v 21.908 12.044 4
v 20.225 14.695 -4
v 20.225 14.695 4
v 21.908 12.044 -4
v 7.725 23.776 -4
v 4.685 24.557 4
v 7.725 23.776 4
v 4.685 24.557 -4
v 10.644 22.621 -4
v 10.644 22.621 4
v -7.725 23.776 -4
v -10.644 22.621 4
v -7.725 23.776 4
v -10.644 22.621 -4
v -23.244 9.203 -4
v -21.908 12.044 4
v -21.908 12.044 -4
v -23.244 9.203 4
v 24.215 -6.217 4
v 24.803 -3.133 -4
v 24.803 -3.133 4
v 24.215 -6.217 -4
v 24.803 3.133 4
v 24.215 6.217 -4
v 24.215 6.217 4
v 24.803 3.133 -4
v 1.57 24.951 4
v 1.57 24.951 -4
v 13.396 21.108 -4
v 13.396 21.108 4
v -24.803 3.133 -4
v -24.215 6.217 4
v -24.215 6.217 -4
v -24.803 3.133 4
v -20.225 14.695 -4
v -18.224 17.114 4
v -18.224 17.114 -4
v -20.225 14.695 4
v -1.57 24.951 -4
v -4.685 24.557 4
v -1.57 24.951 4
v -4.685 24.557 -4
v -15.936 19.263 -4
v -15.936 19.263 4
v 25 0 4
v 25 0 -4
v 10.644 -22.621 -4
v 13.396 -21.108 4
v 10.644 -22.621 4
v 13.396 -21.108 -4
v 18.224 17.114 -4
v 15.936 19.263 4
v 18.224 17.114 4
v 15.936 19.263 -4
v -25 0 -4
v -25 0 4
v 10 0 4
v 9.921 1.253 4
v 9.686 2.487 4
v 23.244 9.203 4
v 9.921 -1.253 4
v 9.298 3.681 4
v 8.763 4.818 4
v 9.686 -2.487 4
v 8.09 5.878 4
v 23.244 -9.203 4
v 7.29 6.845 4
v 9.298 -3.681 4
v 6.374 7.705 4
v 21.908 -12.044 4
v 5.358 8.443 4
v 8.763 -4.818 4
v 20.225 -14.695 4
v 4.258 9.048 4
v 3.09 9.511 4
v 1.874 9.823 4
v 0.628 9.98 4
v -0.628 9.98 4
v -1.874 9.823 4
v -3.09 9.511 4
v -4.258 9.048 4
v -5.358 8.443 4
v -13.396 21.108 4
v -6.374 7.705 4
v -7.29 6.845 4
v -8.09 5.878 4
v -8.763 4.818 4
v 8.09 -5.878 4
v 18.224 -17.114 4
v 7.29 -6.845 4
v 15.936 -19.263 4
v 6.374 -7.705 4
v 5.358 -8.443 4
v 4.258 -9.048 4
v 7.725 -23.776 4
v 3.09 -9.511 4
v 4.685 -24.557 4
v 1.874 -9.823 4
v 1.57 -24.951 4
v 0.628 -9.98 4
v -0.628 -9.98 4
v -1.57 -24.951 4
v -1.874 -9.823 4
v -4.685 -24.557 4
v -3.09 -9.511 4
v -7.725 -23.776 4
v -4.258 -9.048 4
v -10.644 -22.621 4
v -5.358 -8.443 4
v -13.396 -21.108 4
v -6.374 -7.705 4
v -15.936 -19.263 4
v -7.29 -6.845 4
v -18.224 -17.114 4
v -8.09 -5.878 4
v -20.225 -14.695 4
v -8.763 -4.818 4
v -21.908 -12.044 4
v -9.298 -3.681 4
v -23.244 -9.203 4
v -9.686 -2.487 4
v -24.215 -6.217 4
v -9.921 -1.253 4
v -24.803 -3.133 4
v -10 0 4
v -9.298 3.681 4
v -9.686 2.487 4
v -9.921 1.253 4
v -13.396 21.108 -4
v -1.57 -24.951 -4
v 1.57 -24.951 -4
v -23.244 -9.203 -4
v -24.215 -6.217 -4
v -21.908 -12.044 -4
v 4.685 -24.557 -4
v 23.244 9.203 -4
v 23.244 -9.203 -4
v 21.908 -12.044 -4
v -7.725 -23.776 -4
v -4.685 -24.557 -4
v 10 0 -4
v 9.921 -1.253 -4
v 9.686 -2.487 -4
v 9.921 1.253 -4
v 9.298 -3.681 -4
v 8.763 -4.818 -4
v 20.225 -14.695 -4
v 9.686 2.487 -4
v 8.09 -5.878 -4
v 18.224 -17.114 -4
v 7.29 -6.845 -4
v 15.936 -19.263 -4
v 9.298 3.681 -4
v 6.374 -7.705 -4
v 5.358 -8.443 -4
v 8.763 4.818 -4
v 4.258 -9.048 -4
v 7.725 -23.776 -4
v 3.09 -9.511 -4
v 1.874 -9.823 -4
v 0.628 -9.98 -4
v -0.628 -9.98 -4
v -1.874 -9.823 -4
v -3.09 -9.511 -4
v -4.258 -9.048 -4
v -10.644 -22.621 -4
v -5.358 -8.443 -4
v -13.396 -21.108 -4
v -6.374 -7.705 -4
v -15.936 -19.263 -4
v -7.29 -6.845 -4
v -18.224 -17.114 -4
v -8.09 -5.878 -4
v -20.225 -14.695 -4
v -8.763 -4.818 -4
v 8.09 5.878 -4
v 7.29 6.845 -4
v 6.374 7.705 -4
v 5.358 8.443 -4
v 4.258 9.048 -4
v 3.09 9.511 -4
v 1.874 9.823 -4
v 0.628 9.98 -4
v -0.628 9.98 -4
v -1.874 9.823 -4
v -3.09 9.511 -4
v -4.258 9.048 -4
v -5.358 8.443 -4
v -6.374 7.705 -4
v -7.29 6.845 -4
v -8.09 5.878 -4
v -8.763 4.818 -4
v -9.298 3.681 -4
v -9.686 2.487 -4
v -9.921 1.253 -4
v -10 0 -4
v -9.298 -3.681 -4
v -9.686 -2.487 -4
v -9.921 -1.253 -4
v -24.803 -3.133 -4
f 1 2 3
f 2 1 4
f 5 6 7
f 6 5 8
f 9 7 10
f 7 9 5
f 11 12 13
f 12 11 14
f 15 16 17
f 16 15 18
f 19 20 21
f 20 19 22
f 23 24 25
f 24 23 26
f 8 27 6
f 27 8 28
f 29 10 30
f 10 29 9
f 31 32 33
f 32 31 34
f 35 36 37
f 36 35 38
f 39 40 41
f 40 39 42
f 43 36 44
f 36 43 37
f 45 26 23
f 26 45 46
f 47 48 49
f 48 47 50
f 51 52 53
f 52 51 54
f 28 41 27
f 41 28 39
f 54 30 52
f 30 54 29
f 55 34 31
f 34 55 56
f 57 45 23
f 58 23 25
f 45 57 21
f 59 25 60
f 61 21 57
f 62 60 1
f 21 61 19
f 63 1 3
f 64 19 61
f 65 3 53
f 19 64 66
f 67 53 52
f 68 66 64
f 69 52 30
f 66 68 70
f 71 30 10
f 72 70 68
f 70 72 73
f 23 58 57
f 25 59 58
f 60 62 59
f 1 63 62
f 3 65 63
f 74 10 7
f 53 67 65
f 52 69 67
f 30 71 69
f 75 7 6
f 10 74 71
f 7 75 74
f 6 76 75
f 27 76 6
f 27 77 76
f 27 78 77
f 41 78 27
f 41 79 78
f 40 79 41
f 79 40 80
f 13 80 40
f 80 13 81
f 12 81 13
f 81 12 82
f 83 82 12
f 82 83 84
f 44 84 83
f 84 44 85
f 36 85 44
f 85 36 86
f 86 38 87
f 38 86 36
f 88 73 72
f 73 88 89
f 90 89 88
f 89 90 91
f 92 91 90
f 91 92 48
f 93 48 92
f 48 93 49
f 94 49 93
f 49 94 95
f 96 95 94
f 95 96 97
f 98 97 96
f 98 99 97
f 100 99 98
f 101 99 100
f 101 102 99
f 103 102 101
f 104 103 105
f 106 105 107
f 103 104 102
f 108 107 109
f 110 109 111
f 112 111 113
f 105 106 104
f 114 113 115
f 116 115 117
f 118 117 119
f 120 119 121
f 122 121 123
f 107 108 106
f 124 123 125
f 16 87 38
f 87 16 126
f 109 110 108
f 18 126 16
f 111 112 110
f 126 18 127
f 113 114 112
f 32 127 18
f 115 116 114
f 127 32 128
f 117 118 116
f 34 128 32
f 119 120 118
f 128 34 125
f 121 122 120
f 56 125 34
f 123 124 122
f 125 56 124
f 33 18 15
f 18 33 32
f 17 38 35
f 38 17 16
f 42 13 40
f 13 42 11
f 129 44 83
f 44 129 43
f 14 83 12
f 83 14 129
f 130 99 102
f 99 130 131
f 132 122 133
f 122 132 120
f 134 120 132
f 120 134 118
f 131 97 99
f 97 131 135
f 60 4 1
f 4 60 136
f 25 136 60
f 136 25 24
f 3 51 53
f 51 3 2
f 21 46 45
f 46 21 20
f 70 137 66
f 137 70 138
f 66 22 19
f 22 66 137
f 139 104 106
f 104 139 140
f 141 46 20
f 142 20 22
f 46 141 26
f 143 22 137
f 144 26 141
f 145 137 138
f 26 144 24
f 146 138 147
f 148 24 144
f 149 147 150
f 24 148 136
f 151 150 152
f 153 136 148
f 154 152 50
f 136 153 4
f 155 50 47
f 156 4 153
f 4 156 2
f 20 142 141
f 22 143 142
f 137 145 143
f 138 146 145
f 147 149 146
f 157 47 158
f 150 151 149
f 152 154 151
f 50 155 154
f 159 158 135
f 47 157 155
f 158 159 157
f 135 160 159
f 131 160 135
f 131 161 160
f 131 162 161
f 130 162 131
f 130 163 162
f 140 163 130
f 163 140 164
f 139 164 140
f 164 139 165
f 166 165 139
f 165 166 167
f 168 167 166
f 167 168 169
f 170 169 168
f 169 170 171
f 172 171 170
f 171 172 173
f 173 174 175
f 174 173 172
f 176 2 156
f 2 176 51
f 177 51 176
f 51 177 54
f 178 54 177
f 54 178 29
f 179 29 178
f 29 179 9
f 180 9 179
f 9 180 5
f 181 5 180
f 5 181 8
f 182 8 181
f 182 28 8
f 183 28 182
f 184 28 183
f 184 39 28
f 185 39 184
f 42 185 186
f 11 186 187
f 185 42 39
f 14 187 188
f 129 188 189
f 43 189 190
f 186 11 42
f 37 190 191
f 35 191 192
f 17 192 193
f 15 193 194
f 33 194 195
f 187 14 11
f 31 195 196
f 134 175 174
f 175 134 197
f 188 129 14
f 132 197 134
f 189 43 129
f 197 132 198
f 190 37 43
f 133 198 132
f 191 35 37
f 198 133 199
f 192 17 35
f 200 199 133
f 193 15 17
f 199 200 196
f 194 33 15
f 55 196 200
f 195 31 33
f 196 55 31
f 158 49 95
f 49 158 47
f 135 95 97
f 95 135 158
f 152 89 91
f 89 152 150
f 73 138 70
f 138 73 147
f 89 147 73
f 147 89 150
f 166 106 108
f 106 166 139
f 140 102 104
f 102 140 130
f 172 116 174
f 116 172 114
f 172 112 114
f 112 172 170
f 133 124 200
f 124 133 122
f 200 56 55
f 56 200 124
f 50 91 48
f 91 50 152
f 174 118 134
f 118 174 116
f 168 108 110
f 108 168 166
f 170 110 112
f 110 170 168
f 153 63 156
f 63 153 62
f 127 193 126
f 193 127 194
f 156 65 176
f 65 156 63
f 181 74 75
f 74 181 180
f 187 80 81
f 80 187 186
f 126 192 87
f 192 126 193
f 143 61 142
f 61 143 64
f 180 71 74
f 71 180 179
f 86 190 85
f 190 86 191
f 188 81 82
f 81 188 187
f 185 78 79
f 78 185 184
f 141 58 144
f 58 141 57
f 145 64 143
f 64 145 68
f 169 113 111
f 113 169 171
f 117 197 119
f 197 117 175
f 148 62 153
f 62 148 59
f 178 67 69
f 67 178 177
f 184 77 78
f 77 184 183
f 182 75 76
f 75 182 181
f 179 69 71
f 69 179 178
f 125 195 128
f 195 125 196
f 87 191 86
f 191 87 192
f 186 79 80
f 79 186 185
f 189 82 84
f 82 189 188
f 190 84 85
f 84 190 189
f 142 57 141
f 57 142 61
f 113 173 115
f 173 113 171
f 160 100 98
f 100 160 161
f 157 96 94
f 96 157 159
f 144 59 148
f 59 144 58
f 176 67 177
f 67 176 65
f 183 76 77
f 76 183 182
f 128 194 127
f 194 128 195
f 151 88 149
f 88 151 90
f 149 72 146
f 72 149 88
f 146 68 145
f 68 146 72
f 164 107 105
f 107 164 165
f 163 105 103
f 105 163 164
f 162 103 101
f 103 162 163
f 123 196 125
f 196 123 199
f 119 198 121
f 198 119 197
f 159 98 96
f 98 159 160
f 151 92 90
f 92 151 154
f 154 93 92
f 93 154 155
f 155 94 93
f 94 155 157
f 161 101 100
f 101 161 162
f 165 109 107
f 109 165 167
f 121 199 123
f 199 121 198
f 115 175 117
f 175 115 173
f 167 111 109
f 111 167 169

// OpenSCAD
$fn = 50;


difference() {
	union() {
		translate(v = [0, 0, -4.0000000000]) {
			cylinder(h = 8, r = 25.0000000000);
		}
	}
	union() {
		translate(v = [0, 0, -100.0000000000]) {
			cylinder(h = 200, r = 10);
		}
	}
}
